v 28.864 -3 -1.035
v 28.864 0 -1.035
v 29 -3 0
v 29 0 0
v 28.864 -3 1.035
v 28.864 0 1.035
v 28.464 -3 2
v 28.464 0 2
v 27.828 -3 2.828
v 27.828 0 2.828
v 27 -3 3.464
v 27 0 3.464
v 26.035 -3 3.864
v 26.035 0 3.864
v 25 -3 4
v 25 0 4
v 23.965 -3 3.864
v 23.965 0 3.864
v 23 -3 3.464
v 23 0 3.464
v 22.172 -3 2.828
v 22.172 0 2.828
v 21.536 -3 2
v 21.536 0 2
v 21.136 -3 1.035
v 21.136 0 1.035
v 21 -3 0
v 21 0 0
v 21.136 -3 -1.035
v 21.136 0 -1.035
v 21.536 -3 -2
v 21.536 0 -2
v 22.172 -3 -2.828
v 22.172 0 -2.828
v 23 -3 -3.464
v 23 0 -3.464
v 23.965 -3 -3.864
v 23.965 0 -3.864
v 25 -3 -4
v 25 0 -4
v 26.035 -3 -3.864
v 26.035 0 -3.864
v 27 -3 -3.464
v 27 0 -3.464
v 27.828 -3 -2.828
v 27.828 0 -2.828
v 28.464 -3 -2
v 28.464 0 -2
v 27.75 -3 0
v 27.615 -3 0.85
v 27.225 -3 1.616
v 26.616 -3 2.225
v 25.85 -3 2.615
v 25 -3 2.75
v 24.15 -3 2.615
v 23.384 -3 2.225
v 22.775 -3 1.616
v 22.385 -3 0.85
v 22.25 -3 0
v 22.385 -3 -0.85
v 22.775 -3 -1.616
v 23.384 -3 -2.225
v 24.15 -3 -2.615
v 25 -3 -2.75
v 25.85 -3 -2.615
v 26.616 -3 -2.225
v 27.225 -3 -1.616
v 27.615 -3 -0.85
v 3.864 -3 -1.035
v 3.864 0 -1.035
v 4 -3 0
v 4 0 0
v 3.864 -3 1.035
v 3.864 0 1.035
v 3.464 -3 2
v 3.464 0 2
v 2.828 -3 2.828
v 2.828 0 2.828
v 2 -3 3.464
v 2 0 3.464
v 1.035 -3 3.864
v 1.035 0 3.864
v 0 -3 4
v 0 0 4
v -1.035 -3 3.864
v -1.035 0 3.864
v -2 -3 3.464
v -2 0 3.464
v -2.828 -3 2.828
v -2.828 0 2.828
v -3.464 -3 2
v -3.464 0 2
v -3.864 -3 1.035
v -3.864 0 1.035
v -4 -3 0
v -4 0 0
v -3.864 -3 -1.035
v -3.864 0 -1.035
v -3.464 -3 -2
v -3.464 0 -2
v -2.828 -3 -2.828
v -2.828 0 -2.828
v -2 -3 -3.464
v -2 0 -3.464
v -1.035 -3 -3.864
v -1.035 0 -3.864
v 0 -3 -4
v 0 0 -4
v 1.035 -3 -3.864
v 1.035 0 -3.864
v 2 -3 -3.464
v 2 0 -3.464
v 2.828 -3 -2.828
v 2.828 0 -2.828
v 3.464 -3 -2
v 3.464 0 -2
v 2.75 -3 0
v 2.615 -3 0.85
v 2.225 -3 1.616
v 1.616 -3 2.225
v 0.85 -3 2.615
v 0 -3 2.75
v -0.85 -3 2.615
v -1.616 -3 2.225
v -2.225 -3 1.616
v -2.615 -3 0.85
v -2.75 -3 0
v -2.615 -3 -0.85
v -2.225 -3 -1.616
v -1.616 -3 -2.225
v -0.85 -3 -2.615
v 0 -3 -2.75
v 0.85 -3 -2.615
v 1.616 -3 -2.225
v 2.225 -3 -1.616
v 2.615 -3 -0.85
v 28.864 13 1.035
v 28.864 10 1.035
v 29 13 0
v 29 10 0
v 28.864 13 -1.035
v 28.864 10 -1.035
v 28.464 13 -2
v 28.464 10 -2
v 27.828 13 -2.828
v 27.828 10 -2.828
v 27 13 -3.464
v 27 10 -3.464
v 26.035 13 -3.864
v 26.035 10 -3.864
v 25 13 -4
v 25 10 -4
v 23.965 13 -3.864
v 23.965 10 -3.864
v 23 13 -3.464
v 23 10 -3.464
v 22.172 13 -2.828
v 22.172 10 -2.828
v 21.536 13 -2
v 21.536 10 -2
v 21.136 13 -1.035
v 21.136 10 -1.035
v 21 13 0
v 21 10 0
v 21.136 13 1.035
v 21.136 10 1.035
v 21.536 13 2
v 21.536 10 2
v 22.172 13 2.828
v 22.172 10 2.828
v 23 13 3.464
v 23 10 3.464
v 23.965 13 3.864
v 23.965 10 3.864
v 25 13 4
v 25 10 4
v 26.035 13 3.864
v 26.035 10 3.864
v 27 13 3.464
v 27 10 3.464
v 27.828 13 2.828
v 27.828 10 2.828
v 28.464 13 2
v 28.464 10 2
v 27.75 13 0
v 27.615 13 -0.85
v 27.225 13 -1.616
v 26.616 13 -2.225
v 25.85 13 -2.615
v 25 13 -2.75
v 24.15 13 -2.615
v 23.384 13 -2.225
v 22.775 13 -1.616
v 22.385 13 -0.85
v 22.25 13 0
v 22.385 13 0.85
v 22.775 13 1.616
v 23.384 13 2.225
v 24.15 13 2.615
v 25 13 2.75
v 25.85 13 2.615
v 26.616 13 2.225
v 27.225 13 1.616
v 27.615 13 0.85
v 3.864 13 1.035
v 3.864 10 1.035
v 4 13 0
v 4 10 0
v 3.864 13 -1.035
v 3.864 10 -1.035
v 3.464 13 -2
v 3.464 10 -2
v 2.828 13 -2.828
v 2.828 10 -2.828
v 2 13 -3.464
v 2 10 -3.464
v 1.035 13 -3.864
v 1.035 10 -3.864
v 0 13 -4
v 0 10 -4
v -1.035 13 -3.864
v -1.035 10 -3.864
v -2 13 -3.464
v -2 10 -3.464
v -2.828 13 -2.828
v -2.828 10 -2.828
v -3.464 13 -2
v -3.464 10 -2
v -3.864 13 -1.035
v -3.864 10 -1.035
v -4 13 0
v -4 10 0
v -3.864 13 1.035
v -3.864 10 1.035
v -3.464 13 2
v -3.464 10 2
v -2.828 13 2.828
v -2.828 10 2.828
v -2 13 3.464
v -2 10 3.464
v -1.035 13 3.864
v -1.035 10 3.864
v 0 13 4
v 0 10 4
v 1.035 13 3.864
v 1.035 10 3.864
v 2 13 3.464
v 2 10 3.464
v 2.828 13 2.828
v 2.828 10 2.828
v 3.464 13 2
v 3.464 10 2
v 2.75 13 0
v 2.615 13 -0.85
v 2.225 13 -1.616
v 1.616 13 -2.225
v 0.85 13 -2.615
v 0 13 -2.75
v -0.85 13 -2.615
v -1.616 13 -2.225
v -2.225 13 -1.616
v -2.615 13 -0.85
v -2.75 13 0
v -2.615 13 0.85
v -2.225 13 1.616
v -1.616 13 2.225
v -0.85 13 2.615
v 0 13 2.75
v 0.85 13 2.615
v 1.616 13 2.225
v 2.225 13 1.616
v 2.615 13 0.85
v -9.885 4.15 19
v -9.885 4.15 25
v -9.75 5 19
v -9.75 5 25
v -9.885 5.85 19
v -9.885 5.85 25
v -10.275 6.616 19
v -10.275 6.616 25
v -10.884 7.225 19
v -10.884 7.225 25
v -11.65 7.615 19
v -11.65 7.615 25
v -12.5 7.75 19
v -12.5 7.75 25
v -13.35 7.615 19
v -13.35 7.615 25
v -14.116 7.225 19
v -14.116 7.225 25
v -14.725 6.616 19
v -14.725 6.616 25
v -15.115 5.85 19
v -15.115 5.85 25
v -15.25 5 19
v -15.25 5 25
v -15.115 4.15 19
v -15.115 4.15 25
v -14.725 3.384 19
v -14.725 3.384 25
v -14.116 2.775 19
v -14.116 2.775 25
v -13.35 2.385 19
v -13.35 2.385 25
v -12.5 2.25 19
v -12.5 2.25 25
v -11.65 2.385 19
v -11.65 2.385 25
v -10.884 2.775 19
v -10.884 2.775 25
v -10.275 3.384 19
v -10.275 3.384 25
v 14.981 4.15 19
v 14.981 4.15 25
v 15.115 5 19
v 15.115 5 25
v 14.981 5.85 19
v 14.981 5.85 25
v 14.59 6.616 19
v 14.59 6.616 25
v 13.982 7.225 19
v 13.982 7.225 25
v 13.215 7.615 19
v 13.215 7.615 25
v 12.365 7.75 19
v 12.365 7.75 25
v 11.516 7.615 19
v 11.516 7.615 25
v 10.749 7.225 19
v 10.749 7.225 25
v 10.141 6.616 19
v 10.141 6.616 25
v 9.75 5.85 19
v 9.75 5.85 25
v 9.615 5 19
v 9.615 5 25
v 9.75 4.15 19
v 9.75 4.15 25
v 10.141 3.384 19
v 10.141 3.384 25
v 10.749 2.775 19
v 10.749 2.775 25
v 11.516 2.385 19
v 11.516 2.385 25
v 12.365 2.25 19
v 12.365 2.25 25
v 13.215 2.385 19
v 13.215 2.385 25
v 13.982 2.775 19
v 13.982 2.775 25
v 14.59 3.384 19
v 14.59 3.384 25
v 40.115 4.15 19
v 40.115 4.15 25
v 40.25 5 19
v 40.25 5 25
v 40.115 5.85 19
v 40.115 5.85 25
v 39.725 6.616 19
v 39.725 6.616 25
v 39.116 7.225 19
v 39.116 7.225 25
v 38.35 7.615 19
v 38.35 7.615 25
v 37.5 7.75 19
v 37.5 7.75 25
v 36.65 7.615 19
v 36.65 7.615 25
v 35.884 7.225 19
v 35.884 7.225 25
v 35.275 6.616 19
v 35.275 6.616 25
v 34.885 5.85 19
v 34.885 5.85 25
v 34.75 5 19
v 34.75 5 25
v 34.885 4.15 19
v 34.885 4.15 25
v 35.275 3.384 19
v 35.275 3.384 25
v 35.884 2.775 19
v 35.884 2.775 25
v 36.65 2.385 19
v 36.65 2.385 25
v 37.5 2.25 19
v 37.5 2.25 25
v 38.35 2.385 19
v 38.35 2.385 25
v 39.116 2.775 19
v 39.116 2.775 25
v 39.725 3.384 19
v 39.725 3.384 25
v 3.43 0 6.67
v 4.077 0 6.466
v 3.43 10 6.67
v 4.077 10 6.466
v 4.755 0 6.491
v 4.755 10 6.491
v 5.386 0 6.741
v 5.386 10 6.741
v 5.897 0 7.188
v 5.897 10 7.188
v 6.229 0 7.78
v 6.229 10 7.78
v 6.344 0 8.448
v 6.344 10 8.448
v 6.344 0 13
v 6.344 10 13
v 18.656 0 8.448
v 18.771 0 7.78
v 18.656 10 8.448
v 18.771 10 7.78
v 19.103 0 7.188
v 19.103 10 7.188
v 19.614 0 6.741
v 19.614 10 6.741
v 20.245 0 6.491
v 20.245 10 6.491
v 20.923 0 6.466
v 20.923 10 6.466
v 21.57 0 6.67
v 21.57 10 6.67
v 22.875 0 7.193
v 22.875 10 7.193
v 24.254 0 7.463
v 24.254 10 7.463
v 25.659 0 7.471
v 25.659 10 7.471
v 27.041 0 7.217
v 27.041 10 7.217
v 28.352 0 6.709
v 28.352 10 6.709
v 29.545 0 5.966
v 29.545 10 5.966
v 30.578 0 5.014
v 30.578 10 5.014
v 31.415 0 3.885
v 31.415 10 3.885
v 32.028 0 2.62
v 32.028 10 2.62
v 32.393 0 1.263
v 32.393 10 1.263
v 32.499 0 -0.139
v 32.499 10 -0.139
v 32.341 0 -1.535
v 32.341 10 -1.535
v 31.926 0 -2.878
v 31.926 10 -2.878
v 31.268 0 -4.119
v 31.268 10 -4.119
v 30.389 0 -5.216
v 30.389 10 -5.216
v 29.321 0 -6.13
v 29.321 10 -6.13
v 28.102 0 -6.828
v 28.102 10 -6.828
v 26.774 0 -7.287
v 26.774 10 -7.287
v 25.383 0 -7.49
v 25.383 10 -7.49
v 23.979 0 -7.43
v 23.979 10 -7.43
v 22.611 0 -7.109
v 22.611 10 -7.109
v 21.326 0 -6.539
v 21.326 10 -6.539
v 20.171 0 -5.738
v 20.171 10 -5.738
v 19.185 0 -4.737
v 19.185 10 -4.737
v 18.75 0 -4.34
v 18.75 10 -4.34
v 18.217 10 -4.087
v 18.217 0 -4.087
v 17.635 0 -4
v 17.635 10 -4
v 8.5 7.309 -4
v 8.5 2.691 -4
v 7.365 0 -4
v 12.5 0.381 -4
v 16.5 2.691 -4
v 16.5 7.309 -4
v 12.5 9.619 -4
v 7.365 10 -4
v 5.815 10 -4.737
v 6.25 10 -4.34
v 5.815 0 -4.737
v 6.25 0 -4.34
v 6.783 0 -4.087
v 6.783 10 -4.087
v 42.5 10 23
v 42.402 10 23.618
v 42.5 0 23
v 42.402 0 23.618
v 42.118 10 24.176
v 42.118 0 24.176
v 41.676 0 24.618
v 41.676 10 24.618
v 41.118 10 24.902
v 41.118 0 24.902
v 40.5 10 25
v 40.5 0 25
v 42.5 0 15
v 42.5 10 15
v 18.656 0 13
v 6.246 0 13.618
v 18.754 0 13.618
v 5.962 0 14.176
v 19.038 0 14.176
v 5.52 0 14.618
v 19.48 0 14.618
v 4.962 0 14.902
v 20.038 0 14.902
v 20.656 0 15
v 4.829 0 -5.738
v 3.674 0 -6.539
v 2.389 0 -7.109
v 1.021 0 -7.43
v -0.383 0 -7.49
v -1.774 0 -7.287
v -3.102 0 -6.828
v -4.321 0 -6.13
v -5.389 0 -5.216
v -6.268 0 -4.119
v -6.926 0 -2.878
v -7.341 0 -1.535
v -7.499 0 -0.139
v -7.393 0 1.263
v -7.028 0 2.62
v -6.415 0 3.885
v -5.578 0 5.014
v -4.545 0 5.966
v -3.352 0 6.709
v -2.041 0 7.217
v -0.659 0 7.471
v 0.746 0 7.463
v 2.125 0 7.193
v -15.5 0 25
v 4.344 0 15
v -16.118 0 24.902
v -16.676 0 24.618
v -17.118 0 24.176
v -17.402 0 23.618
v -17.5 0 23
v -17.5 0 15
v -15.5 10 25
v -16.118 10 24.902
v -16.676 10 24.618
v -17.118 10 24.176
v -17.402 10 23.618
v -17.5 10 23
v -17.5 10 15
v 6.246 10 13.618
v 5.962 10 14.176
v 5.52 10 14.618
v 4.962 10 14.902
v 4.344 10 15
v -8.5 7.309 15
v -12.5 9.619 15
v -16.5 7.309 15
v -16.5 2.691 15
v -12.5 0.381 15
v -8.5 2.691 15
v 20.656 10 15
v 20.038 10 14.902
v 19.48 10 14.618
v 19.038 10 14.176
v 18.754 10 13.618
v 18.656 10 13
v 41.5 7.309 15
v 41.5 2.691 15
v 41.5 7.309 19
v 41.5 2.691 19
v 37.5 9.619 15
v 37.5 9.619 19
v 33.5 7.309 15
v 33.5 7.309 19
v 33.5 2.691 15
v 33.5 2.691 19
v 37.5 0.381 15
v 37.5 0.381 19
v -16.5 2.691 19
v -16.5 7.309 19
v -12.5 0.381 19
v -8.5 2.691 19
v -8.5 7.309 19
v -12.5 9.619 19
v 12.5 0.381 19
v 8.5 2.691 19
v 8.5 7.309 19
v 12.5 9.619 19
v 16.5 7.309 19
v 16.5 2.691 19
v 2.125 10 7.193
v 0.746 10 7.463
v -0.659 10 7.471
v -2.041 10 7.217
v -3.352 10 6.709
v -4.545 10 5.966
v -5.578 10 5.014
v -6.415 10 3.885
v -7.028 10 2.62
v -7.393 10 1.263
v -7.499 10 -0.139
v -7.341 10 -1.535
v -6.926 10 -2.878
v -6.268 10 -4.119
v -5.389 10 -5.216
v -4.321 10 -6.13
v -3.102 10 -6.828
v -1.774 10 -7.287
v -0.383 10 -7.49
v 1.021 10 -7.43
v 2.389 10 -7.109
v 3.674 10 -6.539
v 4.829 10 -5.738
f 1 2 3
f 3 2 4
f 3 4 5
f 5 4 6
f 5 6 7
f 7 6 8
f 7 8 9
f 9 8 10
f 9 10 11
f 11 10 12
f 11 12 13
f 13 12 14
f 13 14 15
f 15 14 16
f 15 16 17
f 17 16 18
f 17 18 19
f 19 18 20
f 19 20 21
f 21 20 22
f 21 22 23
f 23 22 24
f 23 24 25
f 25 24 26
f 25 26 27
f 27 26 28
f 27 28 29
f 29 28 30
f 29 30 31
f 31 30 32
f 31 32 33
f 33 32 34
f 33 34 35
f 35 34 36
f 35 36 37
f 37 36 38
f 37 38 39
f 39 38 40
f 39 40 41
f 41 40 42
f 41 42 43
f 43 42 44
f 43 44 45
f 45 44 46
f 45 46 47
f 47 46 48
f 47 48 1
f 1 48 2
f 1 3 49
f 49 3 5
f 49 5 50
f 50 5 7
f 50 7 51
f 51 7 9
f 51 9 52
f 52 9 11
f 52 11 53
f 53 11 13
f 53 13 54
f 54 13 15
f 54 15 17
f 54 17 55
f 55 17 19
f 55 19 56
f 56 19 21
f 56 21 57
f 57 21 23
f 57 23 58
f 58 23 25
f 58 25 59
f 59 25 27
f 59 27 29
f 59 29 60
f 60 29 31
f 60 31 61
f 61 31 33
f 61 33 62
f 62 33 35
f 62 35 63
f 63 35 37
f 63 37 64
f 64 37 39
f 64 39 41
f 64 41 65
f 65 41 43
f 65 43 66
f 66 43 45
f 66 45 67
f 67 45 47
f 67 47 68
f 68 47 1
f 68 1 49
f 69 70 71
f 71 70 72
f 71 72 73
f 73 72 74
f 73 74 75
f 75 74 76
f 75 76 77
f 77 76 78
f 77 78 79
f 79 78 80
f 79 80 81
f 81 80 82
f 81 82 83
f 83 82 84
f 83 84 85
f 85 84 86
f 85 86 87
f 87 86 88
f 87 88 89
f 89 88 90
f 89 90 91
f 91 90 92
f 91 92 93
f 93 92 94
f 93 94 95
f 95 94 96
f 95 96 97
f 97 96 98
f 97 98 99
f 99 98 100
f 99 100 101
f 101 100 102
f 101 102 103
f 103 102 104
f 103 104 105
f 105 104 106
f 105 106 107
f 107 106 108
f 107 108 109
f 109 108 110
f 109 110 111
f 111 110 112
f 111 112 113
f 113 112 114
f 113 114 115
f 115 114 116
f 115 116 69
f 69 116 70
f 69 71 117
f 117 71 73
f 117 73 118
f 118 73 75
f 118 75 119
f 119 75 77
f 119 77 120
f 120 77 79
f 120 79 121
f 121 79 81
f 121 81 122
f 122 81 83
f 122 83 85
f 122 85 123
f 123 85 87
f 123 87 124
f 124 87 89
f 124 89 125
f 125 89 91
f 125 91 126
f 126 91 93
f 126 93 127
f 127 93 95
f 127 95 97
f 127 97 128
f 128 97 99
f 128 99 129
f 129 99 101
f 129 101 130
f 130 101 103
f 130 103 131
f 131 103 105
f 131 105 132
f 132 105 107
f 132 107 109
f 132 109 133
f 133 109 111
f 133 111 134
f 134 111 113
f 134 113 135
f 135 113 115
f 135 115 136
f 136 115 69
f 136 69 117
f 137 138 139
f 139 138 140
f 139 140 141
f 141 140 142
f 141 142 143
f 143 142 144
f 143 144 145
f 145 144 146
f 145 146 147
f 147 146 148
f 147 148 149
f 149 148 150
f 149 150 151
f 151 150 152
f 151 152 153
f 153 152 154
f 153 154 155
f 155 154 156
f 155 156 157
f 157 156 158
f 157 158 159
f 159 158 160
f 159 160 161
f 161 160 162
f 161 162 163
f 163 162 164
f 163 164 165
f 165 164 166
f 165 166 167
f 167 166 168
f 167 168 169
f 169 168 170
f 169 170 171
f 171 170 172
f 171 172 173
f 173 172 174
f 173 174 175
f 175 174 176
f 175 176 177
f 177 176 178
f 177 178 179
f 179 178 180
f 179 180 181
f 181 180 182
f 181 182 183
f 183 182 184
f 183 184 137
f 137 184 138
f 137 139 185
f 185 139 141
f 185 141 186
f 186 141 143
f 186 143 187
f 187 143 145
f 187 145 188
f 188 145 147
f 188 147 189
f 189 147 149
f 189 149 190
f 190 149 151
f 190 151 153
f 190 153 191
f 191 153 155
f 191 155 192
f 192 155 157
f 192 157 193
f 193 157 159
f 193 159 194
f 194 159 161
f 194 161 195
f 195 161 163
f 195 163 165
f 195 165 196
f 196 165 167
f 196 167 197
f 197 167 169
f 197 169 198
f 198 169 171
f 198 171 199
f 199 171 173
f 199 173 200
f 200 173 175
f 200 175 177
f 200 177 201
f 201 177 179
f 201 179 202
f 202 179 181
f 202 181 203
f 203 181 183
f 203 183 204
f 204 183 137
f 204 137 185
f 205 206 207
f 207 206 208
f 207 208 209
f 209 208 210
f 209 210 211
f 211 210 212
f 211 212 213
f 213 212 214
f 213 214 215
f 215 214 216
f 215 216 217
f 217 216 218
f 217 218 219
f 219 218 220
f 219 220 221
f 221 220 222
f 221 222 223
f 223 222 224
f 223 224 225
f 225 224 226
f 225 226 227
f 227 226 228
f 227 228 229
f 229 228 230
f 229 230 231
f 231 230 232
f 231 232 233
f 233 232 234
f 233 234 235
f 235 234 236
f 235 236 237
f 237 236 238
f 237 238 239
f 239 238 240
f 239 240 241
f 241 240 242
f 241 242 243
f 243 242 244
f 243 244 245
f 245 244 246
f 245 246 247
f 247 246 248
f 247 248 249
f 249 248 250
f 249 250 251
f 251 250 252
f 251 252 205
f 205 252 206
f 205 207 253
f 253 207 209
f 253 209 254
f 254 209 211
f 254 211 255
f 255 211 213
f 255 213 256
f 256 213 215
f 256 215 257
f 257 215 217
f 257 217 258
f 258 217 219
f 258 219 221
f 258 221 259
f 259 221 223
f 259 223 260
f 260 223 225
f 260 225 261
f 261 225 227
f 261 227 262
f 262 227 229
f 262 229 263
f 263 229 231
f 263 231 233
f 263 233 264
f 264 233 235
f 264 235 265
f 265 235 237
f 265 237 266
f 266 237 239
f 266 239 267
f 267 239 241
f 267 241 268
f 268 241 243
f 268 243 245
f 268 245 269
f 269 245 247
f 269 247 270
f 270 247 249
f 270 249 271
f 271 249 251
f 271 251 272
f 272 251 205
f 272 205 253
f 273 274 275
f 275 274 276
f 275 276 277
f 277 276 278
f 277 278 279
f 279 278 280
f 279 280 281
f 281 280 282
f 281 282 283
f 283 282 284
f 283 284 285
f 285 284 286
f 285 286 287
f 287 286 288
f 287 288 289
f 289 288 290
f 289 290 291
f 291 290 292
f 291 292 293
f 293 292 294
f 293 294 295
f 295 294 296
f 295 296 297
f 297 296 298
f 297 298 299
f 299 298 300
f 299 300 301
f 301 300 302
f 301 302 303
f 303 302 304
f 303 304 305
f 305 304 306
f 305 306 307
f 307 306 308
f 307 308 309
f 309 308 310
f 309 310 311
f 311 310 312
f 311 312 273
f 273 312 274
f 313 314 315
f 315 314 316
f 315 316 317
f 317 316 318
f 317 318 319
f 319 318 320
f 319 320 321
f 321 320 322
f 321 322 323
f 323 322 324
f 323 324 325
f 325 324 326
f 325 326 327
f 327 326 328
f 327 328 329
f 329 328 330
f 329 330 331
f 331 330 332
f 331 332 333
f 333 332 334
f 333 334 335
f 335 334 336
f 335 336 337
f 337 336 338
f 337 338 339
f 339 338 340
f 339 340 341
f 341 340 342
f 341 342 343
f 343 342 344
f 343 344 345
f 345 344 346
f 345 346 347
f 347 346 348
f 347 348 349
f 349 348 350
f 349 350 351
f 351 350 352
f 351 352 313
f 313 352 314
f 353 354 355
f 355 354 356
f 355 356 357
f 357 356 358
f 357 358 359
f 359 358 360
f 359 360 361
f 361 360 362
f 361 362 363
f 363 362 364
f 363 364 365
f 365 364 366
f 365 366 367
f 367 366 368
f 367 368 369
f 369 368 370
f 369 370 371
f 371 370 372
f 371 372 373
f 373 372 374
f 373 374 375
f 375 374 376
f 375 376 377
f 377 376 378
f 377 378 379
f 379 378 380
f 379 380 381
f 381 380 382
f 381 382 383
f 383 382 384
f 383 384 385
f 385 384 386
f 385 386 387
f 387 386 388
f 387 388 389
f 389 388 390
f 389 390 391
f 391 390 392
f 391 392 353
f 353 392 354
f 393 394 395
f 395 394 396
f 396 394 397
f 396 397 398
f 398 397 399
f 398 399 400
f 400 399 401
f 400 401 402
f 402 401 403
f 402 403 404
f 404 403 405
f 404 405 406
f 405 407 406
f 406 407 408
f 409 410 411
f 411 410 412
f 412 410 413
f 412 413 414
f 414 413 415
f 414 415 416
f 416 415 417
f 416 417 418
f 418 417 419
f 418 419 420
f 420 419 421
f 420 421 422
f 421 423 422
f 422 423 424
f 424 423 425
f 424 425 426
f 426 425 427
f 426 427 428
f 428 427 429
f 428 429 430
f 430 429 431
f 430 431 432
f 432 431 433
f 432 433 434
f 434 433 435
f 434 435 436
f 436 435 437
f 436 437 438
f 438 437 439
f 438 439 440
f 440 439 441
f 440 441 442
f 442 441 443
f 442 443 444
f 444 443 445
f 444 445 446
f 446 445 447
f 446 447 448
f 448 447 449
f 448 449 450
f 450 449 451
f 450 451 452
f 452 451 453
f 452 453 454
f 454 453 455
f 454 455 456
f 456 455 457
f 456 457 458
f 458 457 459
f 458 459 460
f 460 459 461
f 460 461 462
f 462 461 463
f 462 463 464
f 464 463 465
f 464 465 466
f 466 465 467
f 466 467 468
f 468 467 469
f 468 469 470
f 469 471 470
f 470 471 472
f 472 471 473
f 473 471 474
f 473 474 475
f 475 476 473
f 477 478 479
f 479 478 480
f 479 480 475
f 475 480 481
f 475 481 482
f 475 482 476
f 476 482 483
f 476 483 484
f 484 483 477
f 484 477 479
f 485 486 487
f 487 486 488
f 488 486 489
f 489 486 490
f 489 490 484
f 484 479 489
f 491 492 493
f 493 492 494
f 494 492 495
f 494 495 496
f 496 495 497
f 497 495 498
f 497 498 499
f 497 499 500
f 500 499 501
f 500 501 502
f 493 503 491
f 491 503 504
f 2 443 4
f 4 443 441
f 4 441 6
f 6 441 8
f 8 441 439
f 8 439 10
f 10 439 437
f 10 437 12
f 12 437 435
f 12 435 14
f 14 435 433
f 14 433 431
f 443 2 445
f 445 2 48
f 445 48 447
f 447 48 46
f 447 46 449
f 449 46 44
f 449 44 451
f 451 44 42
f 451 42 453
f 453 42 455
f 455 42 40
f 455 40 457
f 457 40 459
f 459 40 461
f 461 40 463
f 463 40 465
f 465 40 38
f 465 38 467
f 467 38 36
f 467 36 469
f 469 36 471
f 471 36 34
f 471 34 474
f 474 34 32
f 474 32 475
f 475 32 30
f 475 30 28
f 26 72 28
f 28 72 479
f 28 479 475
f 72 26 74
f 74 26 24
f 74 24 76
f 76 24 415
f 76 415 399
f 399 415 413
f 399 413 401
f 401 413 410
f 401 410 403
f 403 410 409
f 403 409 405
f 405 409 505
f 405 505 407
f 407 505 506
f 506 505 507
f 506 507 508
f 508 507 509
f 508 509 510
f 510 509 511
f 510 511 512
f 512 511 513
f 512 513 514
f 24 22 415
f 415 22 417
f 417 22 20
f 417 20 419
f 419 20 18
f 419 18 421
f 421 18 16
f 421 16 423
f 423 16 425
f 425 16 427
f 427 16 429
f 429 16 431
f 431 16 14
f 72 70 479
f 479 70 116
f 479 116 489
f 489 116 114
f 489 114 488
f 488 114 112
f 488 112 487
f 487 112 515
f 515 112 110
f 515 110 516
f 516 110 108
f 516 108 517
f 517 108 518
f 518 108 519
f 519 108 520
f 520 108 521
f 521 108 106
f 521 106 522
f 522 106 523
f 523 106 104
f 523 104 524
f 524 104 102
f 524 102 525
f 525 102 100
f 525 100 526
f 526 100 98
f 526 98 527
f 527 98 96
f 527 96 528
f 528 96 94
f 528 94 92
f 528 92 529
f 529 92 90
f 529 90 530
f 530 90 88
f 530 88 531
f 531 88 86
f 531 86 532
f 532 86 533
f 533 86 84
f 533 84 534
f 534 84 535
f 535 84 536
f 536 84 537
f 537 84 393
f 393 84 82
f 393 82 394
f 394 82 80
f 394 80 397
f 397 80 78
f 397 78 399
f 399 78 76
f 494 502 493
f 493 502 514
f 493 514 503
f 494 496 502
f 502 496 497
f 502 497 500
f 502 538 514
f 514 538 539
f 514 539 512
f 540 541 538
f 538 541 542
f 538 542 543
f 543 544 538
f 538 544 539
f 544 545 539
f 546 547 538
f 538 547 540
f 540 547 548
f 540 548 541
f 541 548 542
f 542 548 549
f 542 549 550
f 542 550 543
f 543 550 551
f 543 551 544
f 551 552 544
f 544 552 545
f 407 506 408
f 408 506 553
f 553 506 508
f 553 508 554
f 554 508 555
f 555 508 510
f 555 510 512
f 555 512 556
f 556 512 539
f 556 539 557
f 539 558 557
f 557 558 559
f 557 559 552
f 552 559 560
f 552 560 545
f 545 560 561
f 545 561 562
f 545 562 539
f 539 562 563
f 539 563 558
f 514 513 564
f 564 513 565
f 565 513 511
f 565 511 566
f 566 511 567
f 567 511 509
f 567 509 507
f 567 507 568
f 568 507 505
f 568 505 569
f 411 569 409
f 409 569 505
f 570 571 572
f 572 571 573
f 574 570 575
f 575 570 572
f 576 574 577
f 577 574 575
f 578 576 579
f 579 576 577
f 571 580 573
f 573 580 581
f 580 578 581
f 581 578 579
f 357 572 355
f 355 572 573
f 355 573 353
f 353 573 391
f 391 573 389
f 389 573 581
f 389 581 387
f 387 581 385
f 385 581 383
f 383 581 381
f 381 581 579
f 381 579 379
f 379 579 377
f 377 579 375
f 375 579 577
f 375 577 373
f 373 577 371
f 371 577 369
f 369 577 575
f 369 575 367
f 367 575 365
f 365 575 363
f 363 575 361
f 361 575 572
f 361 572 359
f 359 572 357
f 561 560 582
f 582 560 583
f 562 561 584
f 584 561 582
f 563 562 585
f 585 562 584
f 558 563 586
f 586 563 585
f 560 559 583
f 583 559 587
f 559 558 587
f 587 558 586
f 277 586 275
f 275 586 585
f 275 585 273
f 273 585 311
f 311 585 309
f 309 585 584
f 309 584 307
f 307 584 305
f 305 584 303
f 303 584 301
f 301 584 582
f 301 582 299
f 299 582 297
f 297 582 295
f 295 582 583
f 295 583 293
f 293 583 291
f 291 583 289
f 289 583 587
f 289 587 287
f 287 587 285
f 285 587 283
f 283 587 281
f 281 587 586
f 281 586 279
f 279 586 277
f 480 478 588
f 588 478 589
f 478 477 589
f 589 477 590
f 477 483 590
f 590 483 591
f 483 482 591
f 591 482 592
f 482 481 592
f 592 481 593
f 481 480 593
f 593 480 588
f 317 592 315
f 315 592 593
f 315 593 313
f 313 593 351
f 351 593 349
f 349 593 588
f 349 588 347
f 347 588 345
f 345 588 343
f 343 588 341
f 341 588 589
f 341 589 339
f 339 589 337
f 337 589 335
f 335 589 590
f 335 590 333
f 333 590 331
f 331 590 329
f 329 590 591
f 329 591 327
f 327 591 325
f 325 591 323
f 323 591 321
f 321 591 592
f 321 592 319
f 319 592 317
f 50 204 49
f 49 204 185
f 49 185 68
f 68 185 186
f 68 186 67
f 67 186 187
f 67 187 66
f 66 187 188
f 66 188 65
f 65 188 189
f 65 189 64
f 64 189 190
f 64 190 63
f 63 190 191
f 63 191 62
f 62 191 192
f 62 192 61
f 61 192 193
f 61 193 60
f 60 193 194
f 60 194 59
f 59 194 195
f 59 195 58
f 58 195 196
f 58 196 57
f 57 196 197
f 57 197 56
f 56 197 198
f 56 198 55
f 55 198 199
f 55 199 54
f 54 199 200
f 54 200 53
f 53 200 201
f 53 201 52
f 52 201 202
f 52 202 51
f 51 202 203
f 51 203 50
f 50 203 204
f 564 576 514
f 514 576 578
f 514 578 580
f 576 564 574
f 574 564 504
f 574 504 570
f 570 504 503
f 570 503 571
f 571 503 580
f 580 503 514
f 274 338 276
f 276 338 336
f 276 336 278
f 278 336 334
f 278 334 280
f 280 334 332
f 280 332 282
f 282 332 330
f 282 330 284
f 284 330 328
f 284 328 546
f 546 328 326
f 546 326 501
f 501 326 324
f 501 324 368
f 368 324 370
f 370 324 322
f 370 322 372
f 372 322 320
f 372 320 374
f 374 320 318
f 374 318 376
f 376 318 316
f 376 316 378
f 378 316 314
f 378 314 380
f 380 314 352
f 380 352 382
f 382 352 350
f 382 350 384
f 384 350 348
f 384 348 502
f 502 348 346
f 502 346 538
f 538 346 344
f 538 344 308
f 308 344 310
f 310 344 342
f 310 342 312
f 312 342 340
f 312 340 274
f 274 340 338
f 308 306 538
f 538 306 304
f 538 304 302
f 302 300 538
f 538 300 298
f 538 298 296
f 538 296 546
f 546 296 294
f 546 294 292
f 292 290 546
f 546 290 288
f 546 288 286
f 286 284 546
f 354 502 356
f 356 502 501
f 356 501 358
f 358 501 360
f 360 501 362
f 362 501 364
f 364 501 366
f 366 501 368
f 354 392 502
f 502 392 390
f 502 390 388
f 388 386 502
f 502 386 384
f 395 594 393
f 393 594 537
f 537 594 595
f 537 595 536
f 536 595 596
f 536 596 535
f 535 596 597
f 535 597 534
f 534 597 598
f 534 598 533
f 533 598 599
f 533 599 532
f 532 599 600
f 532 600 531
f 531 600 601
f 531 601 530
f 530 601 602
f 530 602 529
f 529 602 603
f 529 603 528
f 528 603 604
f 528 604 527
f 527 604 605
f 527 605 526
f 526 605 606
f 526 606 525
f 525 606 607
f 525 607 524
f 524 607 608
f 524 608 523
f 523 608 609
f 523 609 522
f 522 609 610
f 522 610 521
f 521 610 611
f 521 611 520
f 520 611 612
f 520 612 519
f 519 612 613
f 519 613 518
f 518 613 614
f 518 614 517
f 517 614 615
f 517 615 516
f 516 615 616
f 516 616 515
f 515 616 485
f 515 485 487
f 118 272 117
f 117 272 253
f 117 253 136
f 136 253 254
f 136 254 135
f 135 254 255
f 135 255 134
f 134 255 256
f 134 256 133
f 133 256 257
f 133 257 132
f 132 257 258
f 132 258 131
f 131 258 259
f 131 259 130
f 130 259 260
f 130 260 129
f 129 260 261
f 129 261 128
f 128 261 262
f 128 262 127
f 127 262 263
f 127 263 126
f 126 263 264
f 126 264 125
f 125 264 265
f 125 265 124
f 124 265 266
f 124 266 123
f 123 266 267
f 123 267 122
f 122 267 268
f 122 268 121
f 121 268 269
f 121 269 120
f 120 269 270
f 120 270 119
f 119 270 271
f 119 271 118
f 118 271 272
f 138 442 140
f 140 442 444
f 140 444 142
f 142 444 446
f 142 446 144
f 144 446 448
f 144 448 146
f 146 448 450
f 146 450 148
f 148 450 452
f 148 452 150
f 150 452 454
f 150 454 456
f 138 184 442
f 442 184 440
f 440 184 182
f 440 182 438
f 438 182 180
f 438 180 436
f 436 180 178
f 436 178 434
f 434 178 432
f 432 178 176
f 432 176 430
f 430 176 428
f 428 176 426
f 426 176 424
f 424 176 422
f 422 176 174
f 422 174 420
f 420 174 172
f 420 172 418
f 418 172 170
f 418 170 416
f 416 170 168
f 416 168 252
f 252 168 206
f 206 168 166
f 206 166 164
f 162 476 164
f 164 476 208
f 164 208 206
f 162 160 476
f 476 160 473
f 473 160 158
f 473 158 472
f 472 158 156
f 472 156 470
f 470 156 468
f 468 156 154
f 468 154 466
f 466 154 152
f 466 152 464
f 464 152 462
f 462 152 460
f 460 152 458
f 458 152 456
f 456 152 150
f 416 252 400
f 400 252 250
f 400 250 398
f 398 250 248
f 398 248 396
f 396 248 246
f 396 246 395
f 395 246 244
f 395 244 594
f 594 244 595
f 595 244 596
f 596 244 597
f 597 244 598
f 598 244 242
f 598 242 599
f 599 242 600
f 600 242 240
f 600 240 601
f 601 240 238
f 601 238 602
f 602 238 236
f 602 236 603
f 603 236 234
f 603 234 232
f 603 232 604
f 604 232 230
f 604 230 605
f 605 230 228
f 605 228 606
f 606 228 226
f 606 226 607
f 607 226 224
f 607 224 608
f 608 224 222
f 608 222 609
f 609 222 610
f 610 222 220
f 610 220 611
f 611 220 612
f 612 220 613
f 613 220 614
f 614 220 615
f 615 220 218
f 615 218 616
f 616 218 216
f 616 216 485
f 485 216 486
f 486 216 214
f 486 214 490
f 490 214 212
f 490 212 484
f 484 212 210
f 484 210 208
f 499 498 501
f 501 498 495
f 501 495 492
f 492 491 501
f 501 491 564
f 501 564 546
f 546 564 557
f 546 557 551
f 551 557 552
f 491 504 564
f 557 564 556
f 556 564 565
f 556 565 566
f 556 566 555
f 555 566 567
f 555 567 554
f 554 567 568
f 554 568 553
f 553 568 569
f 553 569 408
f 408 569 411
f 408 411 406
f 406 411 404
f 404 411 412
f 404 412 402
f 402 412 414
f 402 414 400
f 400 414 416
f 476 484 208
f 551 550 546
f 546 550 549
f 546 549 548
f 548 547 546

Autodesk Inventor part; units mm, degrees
ref_plane "YZ Plane" through (0, 0, 0) normal (1, 0, 0) x (0, 1, 0)
ref_plane "XZ Plane" through (0, 0, 0) normal (0, 1, 0) x (-1, 0, 0)
ref_plane "XY Plane" through (0, 0, 0) normal (0, 0, 1) x (1, 0, 0)
sketch "Sketch4" plane through (0, 0, 0) normal (0, 1, 0) x (-1, 0, 0)
  circle A0 centre (0, 0) radius 7.5
  circle A1 centre (0, 0) radius 2.75
  dimension "d19" = 15
  dimension "d20" = 5.5
extrude "Extrusion4" add sketch "Sketch4" along normal blind 10
ref_plane "Work Plane2" through (0, 5, 0) normal (0, 1, 0) x (1, 0, 0)
sketch "Sketch12" plane through (0, 5, 0) normal (0, 1, 0) x (1, 0, 0)
  circle A0 centre (0, 0) radius 2.75 projected
  line L0 (0, 0) -> (25, 0)
  circle A1 centre (25, 0) radius 2.75
  circle A2 centre (25, 0) radius 7.5
  line L1 (12.5, 0) -> (12.5, -20)
  line L2 (42.5, -25) -> (-17.5, -25)
  line L3 (-17.5, -25) -> (-17.5, -15)
  line L4 (-17.5, -15) -> (42.5, -15)
  line L5 (42.5, -15) -> (42.5, -25)
  line L6 (42.5, -25) -> (-17.5, -15) construction
  line L7 (-17.5, -25) -> (42.5, -15) construction
  circle A3 centre (0, 0) radius 7.5 projected
  line L8 (18.6557, -4) -> (6.3443, -4)
  line L9 (6.3443, -4) -> (6.3443, 4)
  line L10 (6.3443, 4) -> (18.6557, 4)
  line L11 (18.6557, 4) -> (18.6557, -4)
  line L12 (18.6557, -4) -> (6.3443, 4) construction
  line L13 (6.3443, -4) -> (18.6557, 4) construction
  line L14 (6.3443, 4) -> (18.6557, 4)
  line L15 (18.6557, 4) -> (18.6557, -16)
  line L16 (18.6557, -16) -> (6.3443, -16)
  line L17 (6.3443, -16) -> (6.3443, 4)
  point P0 (6.3443, -15)
  point P1 (18.6557, -15)
  dimension "d66" = 25
  dimension "d67" = 5.5
  dimension "d68" = 15
  dimension "d69" = 20
  dimension "d70" = 60
  dimension "d71" = 10
  dimension "d72" = 8
  dimension "d73" = 20
extrude "Extrusion10" add sketch "Sketch12" along normal mid plane 10 contours A3 L10 A2 L0 | L0 L1 L8 A3 | L8 L1 L4 L17 | L0 A2 L8 L1 | L8 L15 L4 L1 | L17 L16 L15 L4 L5 L2 L3 | L4 L1 L16 L17 | L11 L0 A2 | A2 L11 | L0 L11 A2 | L4 L15 L16 L1
sketch "Sketch13" plane through (18.6557, 10, -4) normal (0, 0, -1) x (-1, 0, 0)
  line L0 (0, 0) -> (12.3114, 0) projected
  line L1 (6.1557, 0) -> (6.1557, -5)
  line L2 (6.1557, -9.6188) -> (2.1557, -7.3094)
  line L3 (2.1557, -7.3094) -> (2.1557, -2.6906)
  line L4 (2.1557, -2.6906) -> (6.1557, -0.3812)
  line L5 (6.1557, -0.3812) -> (10.1557, -2.6906)
  line L6 (10.1557, -2.6906) -> (10.1557, -7.3094)
  line L7 (10.1557, -7.3094) -> (6.1557, -9.6188)
  line L8 (36.1557, -10) -> (36.1557, 0) projected
  line L9 (36.1557, -5) -> (31.1557, -5)
  line L10 (31.1557, -9.6188) -> (27.1557, -7.3094)
  line L11 (27.1557, -7.3094) -> (27.1557, -2.6906)
  line L12 (27.1557, -2.6906) -> (31.1557, -0.3812)
  line L13 (31.1557, -0.3812) -> (35.1557, -2.6906)
  line L14 (35.1557, -2.6906) -> (35.1557, -7.3094)
  line L15 (35.1557, -7.3094) -> (31.1557, -9.6188)
  line L16 (-23.8443, -10) -> (-23.8443, 0) projected
  line L17 (-23.8443, -5) -> (-18.8443, -5)
  line L18 (-23.8443, -5) -> (-18.8443, -5) construction
  line L19 (-18.8443, -9.6188) -> (-22.8443, -7.3094)
  line L20 (-22.8443, -7.3094) -> (-22.8443, -2.6906)
  line L21 (-22.8443, -2.6906) -> (-18.8443, -0.3812)
  line L22 (-18.8443, -0.3812) -> (-14.8443, -2.6906)
  line L23 (-14.8443, -2.6906) -> (-14.8443, -7.3094)
  line L24 (-14.8443, -7.3094) -> (-18.8443, -9.6188)
  point P0 (18.6557, -10)
  dimension "d76" = 5
  dimension "d77" = 8
  dimension "d78" = 5
  dimension "d79" = 8
  dimension "d80" = 5
  dimension "d81" = 0
  dimension "d82" = 8
extrude "Extrusion11" cut sketch "Sketch13" against normal blind 23
fillet "Fillet4" radius 2 8 edges at (18.6557, 5, 15) (6.3443, 5, 15) (-17.5, 5, 25) (42.5, 5, 25) (6.3443, 5, -4) (18.6557, 5, -4) (18.6557, 5, 4) (6.3443, 5, 4)
sketch "Sketch14" plane through (17.6345, 0, -4) normal (0, 0, -1) x (-1, 0, 0)
  circle A0 centre (5.2691, 5) radius 2.75
  line L0 (0, 10) -> (10.2691, 10) projected
  line L1 (10.2691, 10) -> (10.2691, 0) projected
  circle A1 centre (-19.8655, 5) radius 2.75
  circle A2 centre (30.1345, 5) radius 2.75
  line L2 (35.1345, 0) -> (35.1345, 10) projected
  line L3 (-24.8655, 0) -> (-24.8655, 10) projected
  point P0 (17.6345, 0)
  dimension "d86" = 5.5
  dimension "d87" = 5
  dimension "d88" = 5
  dimension "d89" = 5.5
  dimension "d90" = 5.5
  dimension "d91" = 5
  dimension "d92" = 5
extrude "Extrusion12" cut sketch "Sketch14" against normal through all
sketch "Sketch15" plane through (0, 10, 0) normal (0, 1, 0) x (1, 0, 0)
  circle A0 centre (0, 0) radius 2.75
  circle A1 centre (25, 0) radius 2.75 projected
  circle A2 centre (25, 0) radius 2.75
  circle A3 centre (0, 0) radius 2.75 projected
  circle A4 centre (0, 0) radius 4
  circle A5 centre (25, 0) radius 4
  dimension "d95" = 5.5
  dimension "d96" = 5.5
  dimension "d97" = 8
  dimension "d98" = 8
extrude "Extrusion13" add sketch "Sketch15" along normal blind 3
sketch "Sketch16" plane through (0, 0, 0) normal (0, -1, 0) x (1, 0, 0)
  circle A0 centre (0, 0) radius 2.75 projected
  circle A1 centre (0, 0) radius 2.75
  circle A2 centre (25, 0) radius 2.75 projected
  circle A3 centre (25, 0) radius 2.75
  circle A4 centre (25, 0) radius 4
  circle A5 centre (0, 0) radius 4
  dimension "d101" = 5.5
  dimension "d102" = 8
  dimension "d103" = 8
extrude "Extrusion14" add sketch "Sketch16" along normal blind 3
properties part number "4mm_Roller_Spacer" material "PET Plastic"
